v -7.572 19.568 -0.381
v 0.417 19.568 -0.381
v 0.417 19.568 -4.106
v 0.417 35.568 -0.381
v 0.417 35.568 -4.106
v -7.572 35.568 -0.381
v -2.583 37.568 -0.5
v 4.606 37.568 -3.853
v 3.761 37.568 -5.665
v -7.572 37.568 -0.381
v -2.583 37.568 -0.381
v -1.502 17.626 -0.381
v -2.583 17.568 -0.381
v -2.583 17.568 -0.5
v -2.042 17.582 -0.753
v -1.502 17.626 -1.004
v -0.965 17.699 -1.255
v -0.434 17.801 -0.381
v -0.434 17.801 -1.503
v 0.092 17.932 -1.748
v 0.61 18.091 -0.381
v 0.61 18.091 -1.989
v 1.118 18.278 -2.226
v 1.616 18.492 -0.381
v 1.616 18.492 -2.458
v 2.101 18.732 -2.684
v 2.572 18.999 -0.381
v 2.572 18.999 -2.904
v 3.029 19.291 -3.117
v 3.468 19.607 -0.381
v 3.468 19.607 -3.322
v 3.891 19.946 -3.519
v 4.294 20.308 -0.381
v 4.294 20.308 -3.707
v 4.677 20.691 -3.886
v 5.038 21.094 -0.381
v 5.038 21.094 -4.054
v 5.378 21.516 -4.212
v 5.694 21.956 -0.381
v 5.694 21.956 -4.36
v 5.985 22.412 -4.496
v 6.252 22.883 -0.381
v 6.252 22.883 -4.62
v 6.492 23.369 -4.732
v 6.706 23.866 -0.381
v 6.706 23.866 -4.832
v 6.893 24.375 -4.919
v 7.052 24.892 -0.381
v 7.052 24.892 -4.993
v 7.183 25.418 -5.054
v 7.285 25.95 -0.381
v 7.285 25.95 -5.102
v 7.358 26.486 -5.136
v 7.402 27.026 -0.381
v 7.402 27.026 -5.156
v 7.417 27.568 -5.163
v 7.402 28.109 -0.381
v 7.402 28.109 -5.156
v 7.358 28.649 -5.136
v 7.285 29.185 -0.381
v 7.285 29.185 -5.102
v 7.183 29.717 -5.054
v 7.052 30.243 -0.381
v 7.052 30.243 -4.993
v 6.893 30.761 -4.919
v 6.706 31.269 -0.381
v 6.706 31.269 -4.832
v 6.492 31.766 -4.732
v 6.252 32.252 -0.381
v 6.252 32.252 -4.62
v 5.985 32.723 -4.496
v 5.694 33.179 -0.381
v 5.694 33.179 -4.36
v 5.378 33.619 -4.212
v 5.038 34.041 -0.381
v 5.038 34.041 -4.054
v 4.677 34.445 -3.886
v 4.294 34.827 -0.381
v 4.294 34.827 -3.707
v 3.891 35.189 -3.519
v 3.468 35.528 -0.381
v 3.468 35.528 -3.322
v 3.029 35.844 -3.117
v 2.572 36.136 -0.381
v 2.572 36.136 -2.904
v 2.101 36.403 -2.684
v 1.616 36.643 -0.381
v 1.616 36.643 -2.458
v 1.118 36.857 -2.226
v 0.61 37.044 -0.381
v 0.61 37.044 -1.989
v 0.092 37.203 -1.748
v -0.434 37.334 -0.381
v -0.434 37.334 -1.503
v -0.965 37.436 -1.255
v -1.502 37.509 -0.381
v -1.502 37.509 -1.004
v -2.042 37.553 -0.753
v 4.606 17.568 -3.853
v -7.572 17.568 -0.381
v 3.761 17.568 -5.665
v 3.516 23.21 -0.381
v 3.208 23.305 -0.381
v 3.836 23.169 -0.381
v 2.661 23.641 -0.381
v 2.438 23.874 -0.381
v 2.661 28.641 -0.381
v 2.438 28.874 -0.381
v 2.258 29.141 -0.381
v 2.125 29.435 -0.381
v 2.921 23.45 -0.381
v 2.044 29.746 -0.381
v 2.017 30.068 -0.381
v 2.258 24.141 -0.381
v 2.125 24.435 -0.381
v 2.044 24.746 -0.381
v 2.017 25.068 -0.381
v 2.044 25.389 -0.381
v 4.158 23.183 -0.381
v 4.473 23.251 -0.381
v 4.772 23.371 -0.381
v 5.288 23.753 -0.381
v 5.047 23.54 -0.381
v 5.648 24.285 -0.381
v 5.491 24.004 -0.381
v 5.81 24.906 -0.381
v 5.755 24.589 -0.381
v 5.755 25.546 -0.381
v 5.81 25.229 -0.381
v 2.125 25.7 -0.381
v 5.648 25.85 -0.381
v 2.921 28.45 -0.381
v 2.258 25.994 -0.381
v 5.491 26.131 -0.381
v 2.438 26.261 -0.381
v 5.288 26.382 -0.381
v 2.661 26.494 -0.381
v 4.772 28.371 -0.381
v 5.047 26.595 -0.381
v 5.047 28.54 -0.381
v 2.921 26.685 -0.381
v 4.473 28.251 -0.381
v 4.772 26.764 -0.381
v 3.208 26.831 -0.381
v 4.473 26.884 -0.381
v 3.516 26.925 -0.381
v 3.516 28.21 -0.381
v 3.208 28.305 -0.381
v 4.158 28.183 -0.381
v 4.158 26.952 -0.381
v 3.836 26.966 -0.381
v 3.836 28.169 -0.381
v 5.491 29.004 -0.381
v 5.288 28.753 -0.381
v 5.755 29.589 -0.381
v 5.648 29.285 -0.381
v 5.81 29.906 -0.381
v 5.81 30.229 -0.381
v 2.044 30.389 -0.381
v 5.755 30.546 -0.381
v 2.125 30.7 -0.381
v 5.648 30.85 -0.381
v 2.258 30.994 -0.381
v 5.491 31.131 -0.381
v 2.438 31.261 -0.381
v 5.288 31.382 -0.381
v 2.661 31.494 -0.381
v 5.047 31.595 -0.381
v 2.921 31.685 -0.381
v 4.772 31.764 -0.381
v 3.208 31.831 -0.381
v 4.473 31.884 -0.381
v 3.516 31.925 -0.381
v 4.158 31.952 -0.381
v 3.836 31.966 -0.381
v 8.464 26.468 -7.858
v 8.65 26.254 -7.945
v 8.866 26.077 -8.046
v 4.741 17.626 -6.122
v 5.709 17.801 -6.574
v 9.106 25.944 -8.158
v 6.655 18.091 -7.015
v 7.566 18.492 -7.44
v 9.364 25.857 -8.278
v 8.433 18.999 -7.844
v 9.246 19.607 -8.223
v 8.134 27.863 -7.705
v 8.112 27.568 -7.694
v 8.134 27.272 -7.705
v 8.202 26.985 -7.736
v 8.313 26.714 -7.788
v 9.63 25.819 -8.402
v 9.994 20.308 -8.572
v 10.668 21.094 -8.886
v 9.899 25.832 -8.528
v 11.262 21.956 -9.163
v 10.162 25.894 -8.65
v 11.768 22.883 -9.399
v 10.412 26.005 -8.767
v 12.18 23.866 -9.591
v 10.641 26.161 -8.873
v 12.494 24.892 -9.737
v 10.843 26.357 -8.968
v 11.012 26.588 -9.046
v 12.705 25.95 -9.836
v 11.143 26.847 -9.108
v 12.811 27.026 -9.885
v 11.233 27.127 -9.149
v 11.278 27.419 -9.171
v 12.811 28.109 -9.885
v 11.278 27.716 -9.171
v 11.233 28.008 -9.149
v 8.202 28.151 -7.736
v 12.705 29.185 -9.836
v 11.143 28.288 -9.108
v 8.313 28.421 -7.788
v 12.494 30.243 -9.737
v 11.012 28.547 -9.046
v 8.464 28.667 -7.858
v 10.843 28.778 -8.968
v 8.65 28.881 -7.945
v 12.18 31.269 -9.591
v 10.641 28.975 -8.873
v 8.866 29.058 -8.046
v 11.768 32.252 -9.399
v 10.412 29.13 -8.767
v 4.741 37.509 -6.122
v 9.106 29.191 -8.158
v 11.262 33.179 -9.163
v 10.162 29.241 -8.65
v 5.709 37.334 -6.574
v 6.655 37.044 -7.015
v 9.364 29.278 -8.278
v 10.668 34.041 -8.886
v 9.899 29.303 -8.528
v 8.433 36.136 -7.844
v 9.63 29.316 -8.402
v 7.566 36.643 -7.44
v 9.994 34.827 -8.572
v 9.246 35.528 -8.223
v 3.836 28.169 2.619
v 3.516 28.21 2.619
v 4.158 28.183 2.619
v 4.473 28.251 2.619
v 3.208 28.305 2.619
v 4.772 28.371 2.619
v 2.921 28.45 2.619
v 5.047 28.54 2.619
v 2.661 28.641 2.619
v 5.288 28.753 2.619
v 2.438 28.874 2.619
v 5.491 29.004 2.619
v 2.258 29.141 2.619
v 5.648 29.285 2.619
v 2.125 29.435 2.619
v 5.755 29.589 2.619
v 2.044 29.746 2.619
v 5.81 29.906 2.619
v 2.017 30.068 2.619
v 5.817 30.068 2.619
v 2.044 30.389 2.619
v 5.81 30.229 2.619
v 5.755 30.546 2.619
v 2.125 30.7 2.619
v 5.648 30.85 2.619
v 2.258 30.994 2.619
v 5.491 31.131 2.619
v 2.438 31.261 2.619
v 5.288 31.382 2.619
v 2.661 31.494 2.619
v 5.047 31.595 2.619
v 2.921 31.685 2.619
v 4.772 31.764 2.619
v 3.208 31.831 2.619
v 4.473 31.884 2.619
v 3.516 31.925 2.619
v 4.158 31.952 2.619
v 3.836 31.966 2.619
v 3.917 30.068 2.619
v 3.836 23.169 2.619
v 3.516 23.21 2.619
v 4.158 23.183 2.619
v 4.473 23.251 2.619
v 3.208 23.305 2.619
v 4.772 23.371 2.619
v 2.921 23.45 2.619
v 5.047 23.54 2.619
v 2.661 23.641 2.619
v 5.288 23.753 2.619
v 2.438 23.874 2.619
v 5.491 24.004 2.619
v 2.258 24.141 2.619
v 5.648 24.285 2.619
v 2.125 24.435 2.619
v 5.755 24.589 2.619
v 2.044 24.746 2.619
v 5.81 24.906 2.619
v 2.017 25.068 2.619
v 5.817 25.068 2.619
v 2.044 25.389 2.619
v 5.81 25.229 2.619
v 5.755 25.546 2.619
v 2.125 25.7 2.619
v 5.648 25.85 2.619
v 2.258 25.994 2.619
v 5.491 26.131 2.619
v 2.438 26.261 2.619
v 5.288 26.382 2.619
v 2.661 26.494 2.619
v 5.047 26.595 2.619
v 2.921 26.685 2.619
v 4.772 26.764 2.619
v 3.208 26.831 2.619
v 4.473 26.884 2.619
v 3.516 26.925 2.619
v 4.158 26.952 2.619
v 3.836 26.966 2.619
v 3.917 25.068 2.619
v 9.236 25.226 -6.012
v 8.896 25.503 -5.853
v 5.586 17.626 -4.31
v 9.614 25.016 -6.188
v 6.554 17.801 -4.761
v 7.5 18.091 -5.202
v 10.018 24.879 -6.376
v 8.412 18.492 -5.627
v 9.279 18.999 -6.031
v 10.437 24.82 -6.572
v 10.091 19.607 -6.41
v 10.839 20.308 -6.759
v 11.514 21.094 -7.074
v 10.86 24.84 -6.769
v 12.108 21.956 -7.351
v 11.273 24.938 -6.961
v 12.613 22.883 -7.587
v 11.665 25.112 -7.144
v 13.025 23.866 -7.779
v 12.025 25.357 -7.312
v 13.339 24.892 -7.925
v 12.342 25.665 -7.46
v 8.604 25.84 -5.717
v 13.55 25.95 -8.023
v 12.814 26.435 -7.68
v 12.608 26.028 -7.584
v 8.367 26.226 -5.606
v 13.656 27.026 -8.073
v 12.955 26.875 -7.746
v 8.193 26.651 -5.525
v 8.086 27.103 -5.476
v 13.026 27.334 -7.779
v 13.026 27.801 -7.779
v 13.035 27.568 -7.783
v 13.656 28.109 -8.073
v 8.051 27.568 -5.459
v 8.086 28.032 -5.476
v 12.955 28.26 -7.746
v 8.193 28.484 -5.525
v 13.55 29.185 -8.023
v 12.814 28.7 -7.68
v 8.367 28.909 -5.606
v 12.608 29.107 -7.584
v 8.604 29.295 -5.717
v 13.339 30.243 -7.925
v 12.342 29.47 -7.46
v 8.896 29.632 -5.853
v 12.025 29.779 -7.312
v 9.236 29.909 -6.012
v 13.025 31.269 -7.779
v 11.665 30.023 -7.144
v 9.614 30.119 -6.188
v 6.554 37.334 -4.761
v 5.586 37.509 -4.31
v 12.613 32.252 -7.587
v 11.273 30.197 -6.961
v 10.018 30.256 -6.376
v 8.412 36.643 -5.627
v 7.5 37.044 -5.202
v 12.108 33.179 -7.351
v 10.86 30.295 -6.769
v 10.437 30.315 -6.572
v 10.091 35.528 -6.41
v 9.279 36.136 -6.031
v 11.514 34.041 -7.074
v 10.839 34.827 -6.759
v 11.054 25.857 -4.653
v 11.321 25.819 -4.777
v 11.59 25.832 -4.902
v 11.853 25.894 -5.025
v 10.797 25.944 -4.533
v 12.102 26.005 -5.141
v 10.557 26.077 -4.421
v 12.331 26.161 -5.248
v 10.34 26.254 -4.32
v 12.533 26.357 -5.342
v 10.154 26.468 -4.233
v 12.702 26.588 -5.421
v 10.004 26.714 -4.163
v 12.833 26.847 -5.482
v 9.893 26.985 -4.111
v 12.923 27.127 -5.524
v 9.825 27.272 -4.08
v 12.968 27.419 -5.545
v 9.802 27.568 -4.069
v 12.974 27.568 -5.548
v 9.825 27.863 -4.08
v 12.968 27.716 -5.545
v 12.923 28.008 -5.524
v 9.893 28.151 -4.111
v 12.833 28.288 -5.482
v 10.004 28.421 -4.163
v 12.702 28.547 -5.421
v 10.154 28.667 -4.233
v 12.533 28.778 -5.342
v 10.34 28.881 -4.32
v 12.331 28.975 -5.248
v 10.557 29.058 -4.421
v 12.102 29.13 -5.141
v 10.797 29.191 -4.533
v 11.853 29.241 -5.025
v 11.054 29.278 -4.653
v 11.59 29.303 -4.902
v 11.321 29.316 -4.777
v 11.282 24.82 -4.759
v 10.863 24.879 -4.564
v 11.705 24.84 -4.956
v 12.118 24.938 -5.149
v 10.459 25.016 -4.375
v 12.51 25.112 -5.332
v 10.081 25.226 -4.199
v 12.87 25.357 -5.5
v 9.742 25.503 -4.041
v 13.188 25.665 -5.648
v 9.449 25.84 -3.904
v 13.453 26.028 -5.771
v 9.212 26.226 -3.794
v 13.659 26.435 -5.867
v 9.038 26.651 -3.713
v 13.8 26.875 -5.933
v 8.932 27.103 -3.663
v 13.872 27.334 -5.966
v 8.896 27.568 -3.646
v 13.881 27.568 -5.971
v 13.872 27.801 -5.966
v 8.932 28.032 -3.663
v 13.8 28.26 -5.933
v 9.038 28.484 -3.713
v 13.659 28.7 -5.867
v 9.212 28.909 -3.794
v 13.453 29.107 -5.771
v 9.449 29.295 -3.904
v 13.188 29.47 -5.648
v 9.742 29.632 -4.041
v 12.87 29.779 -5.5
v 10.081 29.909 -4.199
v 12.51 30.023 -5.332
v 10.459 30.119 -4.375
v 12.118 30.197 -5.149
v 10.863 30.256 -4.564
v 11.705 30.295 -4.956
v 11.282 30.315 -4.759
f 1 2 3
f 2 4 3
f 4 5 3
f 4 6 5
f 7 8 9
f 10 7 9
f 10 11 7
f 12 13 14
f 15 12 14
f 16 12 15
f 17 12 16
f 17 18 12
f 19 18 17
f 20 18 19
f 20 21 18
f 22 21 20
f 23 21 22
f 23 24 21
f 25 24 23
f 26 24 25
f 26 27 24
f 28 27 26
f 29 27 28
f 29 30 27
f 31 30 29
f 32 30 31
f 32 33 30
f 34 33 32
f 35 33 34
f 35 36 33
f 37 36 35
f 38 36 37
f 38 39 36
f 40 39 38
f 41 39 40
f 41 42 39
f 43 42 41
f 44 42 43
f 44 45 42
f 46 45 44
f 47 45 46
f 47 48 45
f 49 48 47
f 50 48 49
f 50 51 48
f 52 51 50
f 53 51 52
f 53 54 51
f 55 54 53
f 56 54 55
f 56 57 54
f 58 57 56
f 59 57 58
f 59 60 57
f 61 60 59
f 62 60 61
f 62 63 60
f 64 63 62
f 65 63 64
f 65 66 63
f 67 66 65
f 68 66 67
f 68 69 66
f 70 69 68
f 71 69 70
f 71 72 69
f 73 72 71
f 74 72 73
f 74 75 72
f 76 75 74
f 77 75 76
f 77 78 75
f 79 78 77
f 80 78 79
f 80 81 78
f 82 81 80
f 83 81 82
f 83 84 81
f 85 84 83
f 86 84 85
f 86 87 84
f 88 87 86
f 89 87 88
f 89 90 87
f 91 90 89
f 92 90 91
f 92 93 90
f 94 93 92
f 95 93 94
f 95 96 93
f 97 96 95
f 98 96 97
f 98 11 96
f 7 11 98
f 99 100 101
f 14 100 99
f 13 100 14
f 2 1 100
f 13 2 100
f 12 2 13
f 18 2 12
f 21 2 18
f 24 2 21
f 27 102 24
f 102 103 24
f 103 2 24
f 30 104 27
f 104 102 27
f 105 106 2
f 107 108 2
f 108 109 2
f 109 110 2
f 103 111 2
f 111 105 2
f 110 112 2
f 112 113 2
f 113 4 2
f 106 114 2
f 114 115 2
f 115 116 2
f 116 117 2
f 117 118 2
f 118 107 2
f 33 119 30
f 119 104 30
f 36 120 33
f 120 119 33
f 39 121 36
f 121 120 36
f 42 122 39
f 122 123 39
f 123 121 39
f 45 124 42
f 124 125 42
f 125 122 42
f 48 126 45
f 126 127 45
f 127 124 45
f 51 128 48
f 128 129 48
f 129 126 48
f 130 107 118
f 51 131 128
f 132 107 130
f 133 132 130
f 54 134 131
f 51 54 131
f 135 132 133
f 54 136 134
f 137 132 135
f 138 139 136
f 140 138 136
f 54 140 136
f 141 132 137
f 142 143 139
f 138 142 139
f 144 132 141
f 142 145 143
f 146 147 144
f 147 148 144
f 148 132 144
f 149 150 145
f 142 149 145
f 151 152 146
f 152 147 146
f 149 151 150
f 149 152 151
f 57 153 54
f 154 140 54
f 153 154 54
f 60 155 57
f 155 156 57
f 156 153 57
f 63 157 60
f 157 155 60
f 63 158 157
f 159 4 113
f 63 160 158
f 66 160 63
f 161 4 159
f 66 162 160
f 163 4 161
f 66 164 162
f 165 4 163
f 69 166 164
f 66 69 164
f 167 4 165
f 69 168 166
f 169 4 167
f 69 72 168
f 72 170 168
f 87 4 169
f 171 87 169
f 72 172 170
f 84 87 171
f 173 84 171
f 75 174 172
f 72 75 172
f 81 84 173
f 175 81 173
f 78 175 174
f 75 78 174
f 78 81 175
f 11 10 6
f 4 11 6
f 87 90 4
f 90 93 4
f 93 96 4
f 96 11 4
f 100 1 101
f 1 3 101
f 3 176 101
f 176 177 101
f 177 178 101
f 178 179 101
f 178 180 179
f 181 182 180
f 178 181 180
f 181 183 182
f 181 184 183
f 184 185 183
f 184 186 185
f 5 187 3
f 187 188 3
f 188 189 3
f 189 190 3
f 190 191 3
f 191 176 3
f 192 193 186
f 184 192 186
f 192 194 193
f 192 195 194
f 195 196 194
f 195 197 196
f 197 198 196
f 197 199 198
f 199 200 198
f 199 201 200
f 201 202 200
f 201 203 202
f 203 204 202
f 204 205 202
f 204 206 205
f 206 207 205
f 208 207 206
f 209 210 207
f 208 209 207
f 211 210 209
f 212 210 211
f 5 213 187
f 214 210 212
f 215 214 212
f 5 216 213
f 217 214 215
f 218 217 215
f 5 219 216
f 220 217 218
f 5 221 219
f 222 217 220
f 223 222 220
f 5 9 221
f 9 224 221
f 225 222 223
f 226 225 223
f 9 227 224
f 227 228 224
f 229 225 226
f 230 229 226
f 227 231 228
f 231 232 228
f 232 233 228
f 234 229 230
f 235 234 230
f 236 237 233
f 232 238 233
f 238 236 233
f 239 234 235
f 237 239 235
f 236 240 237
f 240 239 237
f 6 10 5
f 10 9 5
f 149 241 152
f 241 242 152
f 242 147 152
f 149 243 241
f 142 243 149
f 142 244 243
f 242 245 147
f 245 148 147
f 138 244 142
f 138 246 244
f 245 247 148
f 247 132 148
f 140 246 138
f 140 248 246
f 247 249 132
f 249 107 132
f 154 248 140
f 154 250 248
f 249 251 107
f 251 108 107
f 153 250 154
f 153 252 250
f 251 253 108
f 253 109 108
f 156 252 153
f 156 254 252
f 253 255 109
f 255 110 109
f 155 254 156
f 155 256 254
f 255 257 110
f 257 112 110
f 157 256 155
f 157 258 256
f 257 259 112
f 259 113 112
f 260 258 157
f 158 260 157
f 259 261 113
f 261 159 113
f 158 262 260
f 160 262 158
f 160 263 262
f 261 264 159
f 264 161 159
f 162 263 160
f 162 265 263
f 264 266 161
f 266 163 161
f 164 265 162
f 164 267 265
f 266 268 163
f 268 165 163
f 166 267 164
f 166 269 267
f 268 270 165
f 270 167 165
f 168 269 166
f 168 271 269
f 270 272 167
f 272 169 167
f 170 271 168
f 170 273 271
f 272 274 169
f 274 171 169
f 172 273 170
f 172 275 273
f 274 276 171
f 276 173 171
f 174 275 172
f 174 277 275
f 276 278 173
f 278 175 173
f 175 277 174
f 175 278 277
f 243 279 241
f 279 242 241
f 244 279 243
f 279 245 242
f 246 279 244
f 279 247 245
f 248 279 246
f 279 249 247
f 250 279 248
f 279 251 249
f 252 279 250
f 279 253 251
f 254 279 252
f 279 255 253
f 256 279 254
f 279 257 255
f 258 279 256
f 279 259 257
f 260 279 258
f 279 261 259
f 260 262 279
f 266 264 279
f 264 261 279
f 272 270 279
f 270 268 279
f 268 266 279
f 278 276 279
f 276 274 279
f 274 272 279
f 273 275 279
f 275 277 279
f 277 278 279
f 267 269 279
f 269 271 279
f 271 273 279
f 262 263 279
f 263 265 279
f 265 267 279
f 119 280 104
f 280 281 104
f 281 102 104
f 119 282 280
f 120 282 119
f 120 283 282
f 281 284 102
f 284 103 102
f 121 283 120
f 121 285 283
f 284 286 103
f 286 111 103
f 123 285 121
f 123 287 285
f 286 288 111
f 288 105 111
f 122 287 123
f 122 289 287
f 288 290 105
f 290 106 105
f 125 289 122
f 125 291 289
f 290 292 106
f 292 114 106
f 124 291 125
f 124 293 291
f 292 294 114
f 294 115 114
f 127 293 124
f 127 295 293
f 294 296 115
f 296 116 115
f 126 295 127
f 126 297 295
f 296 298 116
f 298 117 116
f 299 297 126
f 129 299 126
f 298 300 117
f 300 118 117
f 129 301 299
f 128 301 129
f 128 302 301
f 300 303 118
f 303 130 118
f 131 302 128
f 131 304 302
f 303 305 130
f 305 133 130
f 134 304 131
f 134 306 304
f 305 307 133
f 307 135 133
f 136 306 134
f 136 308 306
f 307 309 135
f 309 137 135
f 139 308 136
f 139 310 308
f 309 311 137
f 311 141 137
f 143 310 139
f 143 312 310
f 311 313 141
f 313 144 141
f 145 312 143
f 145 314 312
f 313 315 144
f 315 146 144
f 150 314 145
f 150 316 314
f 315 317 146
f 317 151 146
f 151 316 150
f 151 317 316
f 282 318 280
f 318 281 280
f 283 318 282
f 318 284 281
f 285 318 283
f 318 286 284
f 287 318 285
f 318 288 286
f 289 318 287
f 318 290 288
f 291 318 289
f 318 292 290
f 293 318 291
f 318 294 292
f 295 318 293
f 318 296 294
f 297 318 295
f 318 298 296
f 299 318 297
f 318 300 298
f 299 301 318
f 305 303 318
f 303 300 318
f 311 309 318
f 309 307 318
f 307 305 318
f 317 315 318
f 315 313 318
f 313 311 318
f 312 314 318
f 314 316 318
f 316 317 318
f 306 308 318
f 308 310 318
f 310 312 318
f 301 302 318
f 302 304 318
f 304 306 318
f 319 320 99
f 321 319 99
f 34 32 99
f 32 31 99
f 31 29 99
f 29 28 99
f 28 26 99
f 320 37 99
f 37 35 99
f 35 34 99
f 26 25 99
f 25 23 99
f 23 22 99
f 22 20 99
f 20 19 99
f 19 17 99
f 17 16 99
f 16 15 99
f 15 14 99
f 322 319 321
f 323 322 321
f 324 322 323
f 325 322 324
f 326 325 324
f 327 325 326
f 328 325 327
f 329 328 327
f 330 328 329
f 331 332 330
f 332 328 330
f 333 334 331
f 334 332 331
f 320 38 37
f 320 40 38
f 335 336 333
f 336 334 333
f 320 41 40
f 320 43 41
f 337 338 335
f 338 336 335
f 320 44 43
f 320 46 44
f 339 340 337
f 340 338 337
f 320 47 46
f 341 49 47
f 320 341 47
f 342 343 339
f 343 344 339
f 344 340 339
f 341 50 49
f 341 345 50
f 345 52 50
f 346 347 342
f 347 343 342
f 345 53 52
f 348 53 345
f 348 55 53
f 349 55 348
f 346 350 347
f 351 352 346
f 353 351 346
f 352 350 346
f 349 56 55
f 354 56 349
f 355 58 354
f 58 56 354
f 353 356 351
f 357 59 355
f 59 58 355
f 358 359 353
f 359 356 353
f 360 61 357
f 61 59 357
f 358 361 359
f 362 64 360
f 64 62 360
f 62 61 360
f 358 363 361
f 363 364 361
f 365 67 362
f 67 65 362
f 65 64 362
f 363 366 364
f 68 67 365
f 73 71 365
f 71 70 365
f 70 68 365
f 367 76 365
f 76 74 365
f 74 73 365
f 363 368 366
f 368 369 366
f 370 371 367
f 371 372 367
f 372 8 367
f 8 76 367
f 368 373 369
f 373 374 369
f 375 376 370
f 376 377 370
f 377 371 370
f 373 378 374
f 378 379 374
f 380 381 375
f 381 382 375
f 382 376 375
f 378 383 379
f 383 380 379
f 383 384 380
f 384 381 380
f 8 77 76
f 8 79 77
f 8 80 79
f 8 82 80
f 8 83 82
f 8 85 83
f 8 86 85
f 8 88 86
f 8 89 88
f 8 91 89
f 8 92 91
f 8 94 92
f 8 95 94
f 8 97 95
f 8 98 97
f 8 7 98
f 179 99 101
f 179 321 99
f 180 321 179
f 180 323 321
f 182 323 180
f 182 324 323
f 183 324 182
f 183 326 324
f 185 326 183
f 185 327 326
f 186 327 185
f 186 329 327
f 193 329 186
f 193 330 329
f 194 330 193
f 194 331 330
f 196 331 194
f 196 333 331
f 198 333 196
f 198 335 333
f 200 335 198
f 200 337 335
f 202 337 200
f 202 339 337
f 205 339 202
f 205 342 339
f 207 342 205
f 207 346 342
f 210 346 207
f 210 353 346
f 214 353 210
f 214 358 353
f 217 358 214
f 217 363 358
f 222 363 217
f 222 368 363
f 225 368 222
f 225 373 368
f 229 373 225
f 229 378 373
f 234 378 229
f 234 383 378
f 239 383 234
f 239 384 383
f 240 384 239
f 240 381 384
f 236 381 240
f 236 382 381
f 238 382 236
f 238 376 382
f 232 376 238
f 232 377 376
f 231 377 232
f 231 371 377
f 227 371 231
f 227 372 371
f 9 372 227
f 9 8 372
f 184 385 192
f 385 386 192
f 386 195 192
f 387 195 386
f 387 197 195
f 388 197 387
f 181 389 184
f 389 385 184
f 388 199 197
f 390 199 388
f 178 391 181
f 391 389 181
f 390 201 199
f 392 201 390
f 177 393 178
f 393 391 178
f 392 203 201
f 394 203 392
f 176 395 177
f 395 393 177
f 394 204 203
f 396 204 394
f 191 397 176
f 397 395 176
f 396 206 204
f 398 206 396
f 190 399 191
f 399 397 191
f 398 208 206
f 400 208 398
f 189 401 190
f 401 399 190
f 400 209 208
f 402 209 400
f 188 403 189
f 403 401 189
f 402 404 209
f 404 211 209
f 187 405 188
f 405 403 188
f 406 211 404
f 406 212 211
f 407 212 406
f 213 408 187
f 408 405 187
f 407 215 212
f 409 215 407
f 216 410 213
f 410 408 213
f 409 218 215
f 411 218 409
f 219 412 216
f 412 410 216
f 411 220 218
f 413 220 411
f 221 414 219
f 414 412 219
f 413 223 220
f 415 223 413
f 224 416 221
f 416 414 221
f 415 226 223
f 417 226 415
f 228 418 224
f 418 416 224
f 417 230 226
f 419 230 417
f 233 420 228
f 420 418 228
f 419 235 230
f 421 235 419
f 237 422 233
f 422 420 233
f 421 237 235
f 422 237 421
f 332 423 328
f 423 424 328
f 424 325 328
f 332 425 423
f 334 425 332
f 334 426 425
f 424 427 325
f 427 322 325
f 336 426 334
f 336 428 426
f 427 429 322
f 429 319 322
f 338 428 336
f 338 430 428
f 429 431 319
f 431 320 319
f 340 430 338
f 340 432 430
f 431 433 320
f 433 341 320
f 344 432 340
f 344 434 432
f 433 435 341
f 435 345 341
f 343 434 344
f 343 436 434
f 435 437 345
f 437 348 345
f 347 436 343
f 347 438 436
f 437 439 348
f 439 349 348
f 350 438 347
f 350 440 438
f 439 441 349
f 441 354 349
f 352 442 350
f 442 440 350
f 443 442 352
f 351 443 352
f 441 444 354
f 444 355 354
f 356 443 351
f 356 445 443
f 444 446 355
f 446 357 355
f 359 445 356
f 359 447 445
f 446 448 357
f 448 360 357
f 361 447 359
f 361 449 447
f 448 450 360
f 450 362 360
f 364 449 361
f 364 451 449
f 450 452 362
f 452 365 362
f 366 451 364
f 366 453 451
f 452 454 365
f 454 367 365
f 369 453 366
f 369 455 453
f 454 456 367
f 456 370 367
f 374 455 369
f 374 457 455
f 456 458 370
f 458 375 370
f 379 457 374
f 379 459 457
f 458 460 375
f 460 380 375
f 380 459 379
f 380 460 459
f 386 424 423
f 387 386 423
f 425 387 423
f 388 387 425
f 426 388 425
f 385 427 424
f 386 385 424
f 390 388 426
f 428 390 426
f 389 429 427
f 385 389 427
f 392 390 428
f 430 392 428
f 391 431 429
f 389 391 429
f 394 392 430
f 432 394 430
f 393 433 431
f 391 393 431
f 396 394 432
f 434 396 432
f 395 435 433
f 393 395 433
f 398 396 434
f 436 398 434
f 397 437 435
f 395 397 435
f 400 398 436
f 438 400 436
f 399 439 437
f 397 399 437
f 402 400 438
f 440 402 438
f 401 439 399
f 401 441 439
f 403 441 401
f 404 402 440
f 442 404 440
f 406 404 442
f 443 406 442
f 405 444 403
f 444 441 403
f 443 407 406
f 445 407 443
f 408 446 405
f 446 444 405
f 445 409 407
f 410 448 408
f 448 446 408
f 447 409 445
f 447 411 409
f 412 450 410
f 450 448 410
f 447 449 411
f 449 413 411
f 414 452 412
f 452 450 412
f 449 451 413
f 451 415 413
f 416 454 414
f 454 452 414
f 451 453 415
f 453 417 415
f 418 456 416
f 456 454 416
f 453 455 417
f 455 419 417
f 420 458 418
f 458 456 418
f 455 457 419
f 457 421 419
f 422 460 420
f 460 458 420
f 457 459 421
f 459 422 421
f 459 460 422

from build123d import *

# Parameters (mm, degrees)
BOSS_EXTRUDE1_DEPTH     = 20
CUT_EXTRUDE1_START      = -20
CUT_EXTRUDE1_DEPTH      = 20
SKETCH4_R               = 1.9
BOSS_EXTRUDE2_DEPTH     = 3
BOSS_EXTRUDE3_DEPTH     = 2
INTERSECT3_START        = -3.545087111
INTERSECT3_DEPTH        = 2
CUT_EXTRUDE3_DEPTH      = 12
CUT_EXTRUDE3_DEPTH_BACK = 42.091890171
SKETCH9_R               = 1.75
BOSS_EXTRUDE4_START     = 2
SKETCH10_R              = 2.75
SKETCH10_R_2            = 1.75
BOSS_EXTRUDE4_DEPTH     = 2


with BuildPart() as part:
    # Sketch1 → Boss-Extrude1 (new body)
    with BuildSketch(Plane(origin=(0, 0, -0.380808332), x_dir=(-1, 0, 0), z_dir=(0, 0, -1))):
        with BuildLine():
            Line((7.571744633, 37.567534319), (2.583293076, 37.567534319))
            ThreePointArc((2.583293076, 37.567534319), (-7.416706924, 27.567534319), (2.583293076, 17.567534319))
            Line((2.583293076, 17.567534319), (7.571744633, 17.567534319))
            Line((7.571744633, 17.567534319), (7.571744633, 19.567534319))
            Line((7.571744633, 19.567534319), (-0.416706924, 19.567534319))
            Line((-0.416706924, 19.567534319), (-0.416706924, 35.567534319))
            Line((-0.416706924, 35.567534319), (7.571744633, 35.567534319))
            Line((7.571744633, 35.567534319), (7.571744633, 37.567534319))
        make_face()
    extrude(amount=BOSS_EXTRUDE1_DEPTH)

    # Cut-Extrude1: read off the stored shape, not the designer's step
    # Cut-Extrude1 outline → Cut-Extrude1 (cut)
    with BuildSketch(Plane.XZ.offset(-17.567534319).offset(CUT_EXTRUDE1_START)):
        Polygon((-7.571744633, -0.380808332), (-7.571744633, -20.380808332), (7.416706924, -20.380808332), (7.416706924, -7.370038076), align=None)
    extrude(amount=CUT_EXTRUDE1_DEPTH, mode=Mode.SUBTRACT)

    # Sketch4 → Boss-Extrude2 (add)
    with BuildSketch(Plane.XY.offset(-0.380808332)):
        with Locations(Location((3.916706924, 30.067534319, 0), (0, 0, 180))):
            Circle(SKETCH4_R)
        with Locations(Location((3.916706924, 25.067534319, 0), (0, 0, 180))):
            Circle(SKETCH4_R)
    extrude(amount=BOSS_EXTRUDE2_DEPTH)



with BuildPart() as body_2:
    # Sketch5 → Boss-Extrude3 (new body)
    with BuildSketch(Plane(origin=(-1.498218553, 0, -3.212940055), x_dir=(-0.9063077870366496, 0, 0.42261826174070033), z_dir=(-0.4226182617407003, 0, -0.9063077870366495))):
        with BuildLine():
            Line((-5.80275273, 35.29745693), (-5.80275273, 37.567534319))
            ThreePointArc((-5.80275273, 37.567534319), (-15.80275273, 27.567534319), (-5.80275273, 17.567534319))
            Line((-5.80275273, 17.567534319), (-5.80275273, 19.837611709))
            add(Edge.make_bspline(
                [(-5.80275273, 35.29745693), (-9.83653192, 32.297006625), (-9.83653192, 27.567534319), (-9.83653192, 22.838062014), (-5.80275273, 19.837611709)],
                knots=[2.263071394, 2.263071394, 2.263071394, 3.141592654, 3.141592654, 4.020113913, 4.020113913, 4.020113913], degree=2, weights=[0.855612192, 0.836189508, 1, 0.836189508, 0.855612192]))
        make_face()
        with BuildLine():
            Line((-5.80275273, 19.837611709), (-5.80275273, 17.567534319))
            Line((-5.80275273, 17.567534319), (1.19724727, 17.567534319))
            add(Edge.make_bspline(
                [(-5.80275273, 19.837611709), (-2.750880511, 17.567534319), (1.19724727, 17.567534319)],
                knots=[4.020113913, 4.020113913, 4.020113913, 4.71238898, 4.71238898, 4.71238898], degree=2, weights=[0.855612192, 0.870917273, 1]))
        make_face()
        with BuildLine():
            Line((1.19724727, 37.567534319), (-5.80275273, 37.567534319))
            Line((-5.80275273, 37.567534319), (-5.80275273, 35.29745693))
            add(Edge.make_bspline(
                [(1.19724727, 37.567534319), (-2.750880511, 37.567534319), (-5.80275273, 35.29745693)],
                knots=[1.570796327, 1.570796327, 1.570796327, 2.263071394, 2.263071394, 2.263071394], degree=2, weights=[1, 0.870917273, 0.855612192]))
        make_face()
    extrude(amount=-BOSS_EXTRUDE3_DEPTH)


with BuildPart() as part_1:
    add(part.part)

    add(body_2.part)  # Intersect3 merges body 2
    # Intersect3: read off the stored shape, not the designer's step
    # Intersect3 outline → Intersect3 (add)
    with BuildSketch(Plane(origin=(0, 0, 0), x_dir=(0.9063077870366488, 0, -0.42261826174070194), z_dir=(0.4226182617407019, 0, 0.9063077870366488)).offset(INTERSECT3_START)):
        with BuildLine():
            ThreePointArc((5.80275273, 17.567534319), (15.80275273, 27.567534319), (5.80275273, 37.567534319))
            Line((5.80275273, 37.567534319), (-2.129862586, 37.567534319))
            add(Edge.make_bspline(
                [(-2.129862586, 17.567534319), (8.903916604, 17.567534319), (8.903916604, 27.567534319), (8.903916604, 37.567534319), (-2.129862586, 37.567534319)],
                knots=[1.570796327, 1.570796327, 1.570796327, 3.141592654, 3.141592654, 4.71238898, 4.71238898, 4.71238898], degree=2, weights=[1, 0.707106781, 1, 0.707106781, 1]))
            Line((-2.129862586, 17.567534319), (5.80275273, 17.567534319))
        make_face()
    extrude(amount=INTERSECT3_DEPTH)

    # Sketch9 → Cut-Extrude3 (cut, two sides: drawn at the far end of the back side and taken through both)
    with BuildSketch(Plane(origin=(-0.652982029, 0, -1.400324481), x_dir=(0.9063077870366496, 0, -0.4226182617407002), z_dir=(0.4226182617407003, 0, 0.9063077870366497)).offset(-CUT_EXTRUDE3_DEPTH_BACK)):
        with Locations(Location((12.353334667, 27.567534319, 0), (0, 0, 180))):
            Circle(SKETCH9_R)
    extrude(amount=CUT_EXTRUDE3_DEPTH + CUT_EXTRUDE3_DEPTH_BACK, mode=Mode.SUBTRACT)

    # Sketch10 → Boss-Extrude4 (add)
    with BuildSketch(Plane(origin=(-0.652982029, 0, -1.400324481), x_dir=(0.9063077870366488, 0, -0.4226182617407019), z_dir=(0.4226182617407019, 0, 0.9063077870366488)).offset(BOSS_EXTRUDE4_START)):
        with Locations((12.353334667, 27.567534319)):
            Circle(SKETCH10_R)
        with Locations(Location((12.353334667, 27.567534319, 0), (0, 0, 180))):
            Circle(SKETCH10_R_2, mode=Mode.SUBTRACT)
    extrude(amount=-BOSS_EXTRUDE4_DEPTH)


solid = part_1.part
